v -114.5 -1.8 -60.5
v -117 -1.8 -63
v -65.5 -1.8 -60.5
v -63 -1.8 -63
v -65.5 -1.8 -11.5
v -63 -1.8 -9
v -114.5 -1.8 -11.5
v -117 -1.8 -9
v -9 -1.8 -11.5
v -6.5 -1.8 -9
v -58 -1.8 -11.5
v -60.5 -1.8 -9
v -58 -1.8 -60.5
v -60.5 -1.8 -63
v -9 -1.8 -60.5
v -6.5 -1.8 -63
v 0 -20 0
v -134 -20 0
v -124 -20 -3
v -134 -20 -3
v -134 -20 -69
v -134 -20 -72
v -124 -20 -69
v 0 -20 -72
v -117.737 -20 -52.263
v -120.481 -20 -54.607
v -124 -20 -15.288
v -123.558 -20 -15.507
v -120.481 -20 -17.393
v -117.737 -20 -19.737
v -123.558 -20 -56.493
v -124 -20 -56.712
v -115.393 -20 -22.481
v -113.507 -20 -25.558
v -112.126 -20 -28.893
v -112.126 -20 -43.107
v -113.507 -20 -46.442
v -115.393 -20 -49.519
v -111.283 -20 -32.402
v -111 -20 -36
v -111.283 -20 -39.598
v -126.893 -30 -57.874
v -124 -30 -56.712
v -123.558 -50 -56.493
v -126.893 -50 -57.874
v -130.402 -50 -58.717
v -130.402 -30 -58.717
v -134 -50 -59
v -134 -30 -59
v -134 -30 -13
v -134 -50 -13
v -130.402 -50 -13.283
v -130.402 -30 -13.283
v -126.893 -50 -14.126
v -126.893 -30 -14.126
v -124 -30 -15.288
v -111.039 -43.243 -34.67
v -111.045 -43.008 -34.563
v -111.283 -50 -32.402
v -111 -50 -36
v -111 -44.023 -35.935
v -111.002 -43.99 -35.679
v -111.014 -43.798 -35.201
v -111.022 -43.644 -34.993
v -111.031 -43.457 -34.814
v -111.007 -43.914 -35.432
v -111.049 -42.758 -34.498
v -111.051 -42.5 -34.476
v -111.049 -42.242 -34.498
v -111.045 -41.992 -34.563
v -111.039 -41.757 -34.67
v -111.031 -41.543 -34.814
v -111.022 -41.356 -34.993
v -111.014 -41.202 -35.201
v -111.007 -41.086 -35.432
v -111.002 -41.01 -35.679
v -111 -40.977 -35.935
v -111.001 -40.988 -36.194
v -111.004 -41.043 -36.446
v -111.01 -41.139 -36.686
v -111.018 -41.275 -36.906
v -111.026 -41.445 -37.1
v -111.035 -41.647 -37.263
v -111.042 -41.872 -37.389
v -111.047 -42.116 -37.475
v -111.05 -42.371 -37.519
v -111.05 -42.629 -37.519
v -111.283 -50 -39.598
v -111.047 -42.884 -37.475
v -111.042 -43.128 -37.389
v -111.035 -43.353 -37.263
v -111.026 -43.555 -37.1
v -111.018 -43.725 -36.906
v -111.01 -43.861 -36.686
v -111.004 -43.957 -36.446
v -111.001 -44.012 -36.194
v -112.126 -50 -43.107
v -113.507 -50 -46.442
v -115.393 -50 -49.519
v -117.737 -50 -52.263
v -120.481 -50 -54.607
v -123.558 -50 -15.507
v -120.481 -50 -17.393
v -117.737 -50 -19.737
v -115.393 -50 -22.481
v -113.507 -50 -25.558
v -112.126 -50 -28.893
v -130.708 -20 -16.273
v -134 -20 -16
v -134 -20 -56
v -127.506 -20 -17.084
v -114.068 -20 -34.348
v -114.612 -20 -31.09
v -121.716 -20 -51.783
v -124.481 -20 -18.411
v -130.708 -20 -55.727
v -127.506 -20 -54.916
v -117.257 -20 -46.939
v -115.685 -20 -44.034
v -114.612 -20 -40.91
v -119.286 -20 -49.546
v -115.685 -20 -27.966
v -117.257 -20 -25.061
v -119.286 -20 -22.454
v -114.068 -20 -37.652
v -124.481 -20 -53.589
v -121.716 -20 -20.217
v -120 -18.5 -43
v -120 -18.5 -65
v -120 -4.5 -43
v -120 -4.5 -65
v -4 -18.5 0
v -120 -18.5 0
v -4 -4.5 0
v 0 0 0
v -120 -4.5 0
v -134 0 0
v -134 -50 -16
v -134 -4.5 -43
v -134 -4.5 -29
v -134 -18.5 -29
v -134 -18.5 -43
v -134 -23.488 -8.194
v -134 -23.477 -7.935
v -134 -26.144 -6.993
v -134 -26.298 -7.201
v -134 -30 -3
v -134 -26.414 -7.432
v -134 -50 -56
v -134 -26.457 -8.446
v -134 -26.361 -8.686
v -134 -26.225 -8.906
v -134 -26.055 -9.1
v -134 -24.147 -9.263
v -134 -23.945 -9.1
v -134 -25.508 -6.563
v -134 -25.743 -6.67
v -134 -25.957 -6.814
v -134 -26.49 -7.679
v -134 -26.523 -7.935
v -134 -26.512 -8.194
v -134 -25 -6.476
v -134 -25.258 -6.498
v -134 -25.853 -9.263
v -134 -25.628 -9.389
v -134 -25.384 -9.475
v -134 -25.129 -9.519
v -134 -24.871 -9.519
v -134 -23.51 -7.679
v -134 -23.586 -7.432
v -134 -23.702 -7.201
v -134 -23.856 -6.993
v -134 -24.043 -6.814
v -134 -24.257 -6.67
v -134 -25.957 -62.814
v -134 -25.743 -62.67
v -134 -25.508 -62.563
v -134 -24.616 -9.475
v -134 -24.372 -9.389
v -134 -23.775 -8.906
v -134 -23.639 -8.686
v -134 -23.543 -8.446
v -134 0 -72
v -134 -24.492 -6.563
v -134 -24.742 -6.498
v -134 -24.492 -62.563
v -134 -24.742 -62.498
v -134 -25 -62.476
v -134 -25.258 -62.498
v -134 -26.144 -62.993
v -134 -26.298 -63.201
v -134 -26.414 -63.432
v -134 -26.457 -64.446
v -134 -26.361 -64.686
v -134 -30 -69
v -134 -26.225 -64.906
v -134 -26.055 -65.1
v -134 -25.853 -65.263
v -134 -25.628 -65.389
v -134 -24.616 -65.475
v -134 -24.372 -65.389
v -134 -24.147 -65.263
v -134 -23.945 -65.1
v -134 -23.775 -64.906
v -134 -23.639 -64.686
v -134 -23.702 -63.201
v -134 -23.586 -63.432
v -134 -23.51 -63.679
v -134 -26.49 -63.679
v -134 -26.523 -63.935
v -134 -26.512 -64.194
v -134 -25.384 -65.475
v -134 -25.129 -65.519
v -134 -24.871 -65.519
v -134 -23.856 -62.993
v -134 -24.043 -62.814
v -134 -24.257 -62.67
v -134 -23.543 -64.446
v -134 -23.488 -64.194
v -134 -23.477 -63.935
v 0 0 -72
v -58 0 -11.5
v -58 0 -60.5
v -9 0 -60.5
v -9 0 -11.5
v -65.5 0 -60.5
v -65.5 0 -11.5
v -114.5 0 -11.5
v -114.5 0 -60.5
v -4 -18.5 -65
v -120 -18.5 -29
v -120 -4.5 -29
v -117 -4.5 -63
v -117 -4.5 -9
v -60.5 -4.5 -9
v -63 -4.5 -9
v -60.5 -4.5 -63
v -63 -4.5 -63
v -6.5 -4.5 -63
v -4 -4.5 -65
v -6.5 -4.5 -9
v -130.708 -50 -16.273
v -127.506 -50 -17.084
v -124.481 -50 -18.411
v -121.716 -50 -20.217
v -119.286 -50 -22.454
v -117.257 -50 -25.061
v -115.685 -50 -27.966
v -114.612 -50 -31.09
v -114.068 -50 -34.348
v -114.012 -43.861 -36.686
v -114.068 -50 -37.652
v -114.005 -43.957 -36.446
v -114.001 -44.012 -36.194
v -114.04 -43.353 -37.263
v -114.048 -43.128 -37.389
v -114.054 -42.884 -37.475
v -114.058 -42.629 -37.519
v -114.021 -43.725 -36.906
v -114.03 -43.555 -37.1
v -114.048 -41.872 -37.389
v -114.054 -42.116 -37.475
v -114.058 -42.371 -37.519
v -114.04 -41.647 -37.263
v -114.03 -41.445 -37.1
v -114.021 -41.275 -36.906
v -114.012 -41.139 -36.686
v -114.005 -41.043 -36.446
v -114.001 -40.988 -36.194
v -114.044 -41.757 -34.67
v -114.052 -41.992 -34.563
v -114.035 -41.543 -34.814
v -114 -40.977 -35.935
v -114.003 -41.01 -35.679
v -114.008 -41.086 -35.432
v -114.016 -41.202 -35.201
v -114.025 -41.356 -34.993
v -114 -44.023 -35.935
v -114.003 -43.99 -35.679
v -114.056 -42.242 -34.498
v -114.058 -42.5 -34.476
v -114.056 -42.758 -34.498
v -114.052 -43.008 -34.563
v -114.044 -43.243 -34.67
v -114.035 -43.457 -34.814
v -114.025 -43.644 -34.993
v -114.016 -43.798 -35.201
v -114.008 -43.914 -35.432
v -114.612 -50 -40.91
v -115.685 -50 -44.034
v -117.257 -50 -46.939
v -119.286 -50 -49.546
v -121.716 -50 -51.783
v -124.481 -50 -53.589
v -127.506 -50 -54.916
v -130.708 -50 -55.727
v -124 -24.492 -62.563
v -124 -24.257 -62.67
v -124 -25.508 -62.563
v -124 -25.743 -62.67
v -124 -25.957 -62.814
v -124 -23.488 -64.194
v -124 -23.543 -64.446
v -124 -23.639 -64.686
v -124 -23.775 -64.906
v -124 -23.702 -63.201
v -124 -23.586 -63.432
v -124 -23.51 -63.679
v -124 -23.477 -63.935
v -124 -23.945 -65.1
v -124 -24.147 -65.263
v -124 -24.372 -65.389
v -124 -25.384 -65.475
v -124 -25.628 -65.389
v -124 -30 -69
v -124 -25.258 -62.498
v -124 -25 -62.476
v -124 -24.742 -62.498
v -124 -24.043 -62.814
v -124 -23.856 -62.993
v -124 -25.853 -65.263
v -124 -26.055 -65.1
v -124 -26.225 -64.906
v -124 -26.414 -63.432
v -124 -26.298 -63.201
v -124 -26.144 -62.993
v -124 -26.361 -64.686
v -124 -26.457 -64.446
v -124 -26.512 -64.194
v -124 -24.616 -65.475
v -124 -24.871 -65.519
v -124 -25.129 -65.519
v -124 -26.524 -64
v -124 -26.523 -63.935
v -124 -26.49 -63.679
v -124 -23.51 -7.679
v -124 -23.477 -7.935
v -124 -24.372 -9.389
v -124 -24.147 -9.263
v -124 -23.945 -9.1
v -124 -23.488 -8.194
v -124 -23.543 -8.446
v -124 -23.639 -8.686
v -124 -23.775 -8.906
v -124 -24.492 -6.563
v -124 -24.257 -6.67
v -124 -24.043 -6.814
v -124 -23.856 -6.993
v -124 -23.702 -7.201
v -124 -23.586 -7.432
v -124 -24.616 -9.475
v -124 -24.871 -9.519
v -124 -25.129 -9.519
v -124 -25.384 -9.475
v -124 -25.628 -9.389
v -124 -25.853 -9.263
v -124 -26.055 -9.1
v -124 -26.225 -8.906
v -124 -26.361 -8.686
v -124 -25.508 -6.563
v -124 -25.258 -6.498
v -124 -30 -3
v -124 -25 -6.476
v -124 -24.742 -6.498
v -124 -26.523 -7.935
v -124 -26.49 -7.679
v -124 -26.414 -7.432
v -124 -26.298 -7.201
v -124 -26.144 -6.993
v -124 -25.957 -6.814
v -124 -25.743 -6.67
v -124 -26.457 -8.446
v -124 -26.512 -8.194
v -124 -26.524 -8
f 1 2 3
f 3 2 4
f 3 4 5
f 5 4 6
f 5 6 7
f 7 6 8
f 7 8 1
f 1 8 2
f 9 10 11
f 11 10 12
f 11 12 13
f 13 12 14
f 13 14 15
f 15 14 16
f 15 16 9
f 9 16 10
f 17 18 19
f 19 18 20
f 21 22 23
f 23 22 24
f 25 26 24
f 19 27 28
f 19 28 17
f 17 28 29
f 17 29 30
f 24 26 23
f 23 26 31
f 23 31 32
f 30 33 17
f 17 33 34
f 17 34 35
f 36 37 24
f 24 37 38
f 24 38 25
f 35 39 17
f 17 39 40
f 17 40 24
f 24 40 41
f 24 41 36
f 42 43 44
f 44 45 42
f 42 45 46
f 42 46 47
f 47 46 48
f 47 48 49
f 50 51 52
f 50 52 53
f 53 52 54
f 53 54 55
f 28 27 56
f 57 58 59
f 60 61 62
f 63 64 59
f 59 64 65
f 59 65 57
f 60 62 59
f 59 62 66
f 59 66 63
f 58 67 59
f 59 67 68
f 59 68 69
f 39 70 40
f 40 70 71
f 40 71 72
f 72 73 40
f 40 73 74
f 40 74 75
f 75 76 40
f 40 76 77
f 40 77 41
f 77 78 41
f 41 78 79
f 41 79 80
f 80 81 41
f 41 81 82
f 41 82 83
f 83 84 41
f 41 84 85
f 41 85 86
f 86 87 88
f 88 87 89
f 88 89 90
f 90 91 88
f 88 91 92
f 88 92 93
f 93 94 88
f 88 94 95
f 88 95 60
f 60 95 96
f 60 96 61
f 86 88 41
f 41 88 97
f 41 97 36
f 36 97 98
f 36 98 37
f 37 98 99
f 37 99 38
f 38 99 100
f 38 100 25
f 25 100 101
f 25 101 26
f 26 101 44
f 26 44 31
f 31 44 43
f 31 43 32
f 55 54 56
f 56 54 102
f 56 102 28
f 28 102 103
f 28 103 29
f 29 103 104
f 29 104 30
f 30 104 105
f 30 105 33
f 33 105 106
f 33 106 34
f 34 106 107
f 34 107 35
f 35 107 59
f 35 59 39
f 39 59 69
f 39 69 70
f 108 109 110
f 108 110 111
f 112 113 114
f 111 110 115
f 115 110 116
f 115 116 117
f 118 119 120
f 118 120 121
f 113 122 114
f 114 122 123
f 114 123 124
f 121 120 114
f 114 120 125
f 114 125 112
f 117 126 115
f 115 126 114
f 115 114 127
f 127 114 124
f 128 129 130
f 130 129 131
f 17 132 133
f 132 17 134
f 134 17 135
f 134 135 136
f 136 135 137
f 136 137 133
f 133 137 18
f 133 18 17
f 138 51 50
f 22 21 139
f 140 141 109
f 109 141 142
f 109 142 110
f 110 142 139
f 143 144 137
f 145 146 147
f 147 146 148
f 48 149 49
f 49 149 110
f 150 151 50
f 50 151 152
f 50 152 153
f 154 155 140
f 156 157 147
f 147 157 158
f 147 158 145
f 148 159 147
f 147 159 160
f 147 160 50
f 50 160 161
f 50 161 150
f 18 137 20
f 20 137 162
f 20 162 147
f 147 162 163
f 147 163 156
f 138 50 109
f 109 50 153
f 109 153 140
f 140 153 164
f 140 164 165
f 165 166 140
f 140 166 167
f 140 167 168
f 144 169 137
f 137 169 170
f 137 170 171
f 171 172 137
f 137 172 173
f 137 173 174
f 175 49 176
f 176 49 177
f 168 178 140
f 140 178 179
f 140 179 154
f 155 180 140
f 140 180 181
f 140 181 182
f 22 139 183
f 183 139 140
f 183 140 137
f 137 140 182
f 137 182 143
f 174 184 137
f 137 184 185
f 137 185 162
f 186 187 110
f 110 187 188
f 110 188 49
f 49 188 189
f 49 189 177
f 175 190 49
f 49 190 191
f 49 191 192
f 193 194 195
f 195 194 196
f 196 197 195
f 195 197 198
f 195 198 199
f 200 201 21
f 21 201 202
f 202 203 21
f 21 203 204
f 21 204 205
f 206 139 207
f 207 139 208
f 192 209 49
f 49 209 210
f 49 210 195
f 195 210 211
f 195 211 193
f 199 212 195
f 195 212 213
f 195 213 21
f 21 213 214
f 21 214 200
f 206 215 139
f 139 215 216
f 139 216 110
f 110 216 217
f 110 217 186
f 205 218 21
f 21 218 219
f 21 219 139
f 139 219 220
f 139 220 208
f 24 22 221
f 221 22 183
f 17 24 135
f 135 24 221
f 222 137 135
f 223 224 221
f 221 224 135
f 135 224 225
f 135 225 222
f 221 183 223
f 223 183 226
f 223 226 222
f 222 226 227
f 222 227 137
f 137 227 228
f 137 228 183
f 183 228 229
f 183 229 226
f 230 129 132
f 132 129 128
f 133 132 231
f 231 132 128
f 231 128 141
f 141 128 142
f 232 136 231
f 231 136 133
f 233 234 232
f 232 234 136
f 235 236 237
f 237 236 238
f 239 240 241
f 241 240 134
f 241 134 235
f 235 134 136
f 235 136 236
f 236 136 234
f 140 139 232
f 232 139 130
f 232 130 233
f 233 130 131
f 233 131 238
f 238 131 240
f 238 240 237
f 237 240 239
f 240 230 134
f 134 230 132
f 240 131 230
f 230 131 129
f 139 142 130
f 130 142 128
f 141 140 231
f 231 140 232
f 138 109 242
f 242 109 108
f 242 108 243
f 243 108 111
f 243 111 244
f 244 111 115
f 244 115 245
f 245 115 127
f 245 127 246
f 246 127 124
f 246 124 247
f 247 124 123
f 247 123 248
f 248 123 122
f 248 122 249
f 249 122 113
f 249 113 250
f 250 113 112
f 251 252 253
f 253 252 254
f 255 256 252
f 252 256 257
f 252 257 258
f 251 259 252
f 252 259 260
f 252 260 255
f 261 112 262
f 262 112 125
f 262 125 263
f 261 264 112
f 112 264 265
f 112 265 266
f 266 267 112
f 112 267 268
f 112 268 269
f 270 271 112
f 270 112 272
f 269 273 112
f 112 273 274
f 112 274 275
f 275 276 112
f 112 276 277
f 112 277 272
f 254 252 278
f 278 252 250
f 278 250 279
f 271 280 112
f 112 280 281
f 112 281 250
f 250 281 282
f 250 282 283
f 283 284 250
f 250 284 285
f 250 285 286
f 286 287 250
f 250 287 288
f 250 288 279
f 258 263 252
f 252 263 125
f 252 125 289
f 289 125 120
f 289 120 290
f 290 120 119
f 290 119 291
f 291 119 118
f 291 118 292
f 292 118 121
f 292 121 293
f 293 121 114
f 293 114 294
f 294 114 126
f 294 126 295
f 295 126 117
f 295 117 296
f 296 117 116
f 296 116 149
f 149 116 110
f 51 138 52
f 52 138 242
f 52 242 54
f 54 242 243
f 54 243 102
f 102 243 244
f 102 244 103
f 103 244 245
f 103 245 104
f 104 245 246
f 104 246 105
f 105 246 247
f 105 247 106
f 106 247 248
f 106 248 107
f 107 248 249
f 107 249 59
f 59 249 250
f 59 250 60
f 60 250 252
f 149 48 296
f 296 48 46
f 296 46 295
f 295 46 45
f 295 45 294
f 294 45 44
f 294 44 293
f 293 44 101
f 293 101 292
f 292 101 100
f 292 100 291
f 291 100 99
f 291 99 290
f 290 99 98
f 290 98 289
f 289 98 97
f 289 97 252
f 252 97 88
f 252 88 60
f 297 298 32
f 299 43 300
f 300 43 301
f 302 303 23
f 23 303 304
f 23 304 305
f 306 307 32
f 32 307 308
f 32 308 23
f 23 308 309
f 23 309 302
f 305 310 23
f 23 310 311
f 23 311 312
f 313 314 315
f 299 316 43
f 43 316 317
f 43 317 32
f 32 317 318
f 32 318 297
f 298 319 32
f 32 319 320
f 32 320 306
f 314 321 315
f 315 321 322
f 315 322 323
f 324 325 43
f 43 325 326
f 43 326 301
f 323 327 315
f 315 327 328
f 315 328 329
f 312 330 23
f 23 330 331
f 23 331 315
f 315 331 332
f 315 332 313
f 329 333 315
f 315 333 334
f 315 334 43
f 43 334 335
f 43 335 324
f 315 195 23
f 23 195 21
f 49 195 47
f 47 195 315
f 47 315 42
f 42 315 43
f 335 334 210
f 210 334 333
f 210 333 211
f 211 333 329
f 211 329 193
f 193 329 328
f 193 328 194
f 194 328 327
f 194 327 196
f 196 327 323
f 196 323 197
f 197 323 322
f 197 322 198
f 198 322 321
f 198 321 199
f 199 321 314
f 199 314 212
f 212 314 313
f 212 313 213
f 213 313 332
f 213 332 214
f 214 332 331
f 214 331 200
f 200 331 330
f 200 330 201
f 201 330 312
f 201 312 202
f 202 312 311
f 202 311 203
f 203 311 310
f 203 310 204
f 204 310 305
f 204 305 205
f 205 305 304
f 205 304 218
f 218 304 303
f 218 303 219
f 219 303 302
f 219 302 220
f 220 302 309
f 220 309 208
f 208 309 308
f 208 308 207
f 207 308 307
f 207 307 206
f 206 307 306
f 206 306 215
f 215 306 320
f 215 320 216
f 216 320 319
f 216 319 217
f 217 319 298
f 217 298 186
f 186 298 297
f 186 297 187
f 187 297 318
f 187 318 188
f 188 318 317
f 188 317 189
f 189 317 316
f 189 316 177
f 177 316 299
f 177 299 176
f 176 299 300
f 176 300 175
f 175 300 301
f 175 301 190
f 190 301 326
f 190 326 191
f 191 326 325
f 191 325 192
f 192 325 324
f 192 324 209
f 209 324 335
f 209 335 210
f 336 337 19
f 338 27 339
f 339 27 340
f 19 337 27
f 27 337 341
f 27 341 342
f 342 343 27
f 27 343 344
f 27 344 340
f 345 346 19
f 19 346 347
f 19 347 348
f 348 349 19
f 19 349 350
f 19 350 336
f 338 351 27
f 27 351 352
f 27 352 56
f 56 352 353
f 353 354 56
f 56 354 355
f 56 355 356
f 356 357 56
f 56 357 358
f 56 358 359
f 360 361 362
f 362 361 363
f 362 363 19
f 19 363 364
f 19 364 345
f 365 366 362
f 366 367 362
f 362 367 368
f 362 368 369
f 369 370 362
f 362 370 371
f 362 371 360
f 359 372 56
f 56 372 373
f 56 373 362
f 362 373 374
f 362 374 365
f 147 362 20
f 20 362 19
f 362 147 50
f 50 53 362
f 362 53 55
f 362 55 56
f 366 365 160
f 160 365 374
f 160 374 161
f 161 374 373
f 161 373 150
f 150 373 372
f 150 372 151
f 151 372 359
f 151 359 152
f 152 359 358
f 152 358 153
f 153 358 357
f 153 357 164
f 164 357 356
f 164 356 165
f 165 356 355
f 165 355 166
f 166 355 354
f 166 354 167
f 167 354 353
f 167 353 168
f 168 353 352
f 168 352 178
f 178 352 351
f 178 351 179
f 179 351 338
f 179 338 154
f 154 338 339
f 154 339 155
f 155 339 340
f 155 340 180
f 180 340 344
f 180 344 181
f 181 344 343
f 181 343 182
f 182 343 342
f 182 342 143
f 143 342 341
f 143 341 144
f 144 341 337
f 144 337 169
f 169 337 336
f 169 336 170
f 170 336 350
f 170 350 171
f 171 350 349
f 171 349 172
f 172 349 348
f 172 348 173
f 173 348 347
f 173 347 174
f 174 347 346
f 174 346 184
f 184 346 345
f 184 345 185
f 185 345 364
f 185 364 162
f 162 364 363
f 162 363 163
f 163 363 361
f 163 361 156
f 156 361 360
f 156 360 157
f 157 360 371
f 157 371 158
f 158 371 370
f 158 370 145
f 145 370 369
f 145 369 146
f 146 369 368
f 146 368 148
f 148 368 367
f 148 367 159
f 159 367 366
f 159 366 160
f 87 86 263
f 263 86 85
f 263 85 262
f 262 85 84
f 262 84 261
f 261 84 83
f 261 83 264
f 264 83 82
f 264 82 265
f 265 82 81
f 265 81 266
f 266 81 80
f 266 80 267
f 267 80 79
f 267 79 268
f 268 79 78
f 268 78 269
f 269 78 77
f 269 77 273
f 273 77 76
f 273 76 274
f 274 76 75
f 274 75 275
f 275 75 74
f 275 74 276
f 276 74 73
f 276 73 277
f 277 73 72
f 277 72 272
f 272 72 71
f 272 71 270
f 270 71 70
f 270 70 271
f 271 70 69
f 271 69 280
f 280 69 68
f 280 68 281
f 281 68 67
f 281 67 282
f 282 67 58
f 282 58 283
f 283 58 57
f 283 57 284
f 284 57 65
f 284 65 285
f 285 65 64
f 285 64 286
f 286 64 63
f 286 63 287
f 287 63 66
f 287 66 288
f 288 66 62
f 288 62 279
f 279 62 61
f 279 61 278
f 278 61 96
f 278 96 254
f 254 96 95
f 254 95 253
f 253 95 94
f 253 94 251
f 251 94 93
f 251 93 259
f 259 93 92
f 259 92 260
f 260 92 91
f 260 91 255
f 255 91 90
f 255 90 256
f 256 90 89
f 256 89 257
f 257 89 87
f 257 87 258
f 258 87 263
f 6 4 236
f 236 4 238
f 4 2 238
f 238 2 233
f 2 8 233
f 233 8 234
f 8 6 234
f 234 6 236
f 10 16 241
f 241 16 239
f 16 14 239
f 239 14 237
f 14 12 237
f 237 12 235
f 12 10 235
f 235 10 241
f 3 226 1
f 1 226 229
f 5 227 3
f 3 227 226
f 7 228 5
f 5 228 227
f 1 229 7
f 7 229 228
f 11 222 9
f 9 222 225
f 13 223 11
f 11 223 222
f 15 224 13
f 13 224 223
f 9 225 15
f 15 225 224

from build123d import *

# Parameters (mm, degrees)
MAIN_BODY_DEPTH            = 16
SKETCH8_W                  = 134
SKETCH8_H                  = 4
COVER_DEPTH                = 72
SKETCH20_W                 = 116
SKETCH20_H                 = 14
CRYSTAL_SLOT_DEPTH         = 65
SKETCH9_W                  = 14
SKETCH9_H                  = 14
SIPM_WINDOW_DEPTH          = 14
TUBE_ADAPTER_DEPTH         = 30
RIGHT_SCREW_TERMINAL_DEPTH = 10
RIGHT_SCREW_HOLE_REACH     = 136
SKETCH12_R                 = 1.524
LEFT_SCREW_TERMINAL_DEPTH  = 10
LEFT_SCREW_HOLE_REACH      = 136
SKETCH14_R                 = 1.524
ADAPTER_HOLE_REACH         = 146
SKETCH18_R                 = 1.524
SKETCH21_W                 = 54
SKETCH21_H                 = 54
FILTER_SLOT_DEPTH          = 2.7
SKETCH24_W                 = 49
SKETCH24_H                 = 49
FILTER_WINDOW_DEPTH        = 1.8


with BuildPart() as part:
    # Sketch5 → Main Body (new body)
    with BuildSketch(Plane(origin=(0, 0, 0), x_dir=(1, 0, 0), z_dir=(0, 1, 0))):
        Polygon((-134, 0), (-124, 0), (-1.95326153, 0), (0, 0), (0, 72), (-134, 72), align=None)
    extrude(amount=-MAIN_BODY_DEPTH)

    # Sketch8 → Cover (add)
    with BuildSketch(Plane.XY):
        with Locations((-67, -18)):
            Rectangle(SKETCH8_W, SKETCH8_H)
    extrude(amount=-COVER_DEPTH)

    # Sketch20 → Crystal Slot (cut)
    with BuildSketch(Plane.XY):
        with Locations((-62, -11.5)):
            Rectangle(SKETCH20_W, SKETCH20_H)
    extrude(amount=-CRYSTAL_SLOT_DEPTH, mode=Mode.SUBTRACT)

    # Sketch9 → SiPM Window (cut)
    with BuildSketch(Plane.ZY.offset(134)):
        with Locations((-36, -11.5)):
            Rectangle(SKETCH9_W, SKETCH9_H)
    extrude(amount=-SIPM_WINDOW_DEPTH, mode=Mode.SUBTRACT)

    # Sketch10 → Tube Adapter (add)
    with BuildSketch(Plane.XZ.offset(20)):
        with BuildLine():
            Line((-134, -13), (-134, -16))
            ThreePointArc((-134, -16), (-114, -36), (-134, -56))
            Line((-134, -56), (-134, -59))
            ThreePointArc((-134, -59), (-111, -36), (-134, -13))
        make_face()
    extrude(amount=TUBE_ADAPTER_DEPTH)

    # Sketch11 → Right Screw Terminal (add)
    with BuildSketch(Plane.XZ.offset(20)):
        with BuildLine():
            Line((-134, -59), (-134, -69))
            Line((-134, -69), (-124, -69))
            Line((-124, -69), (-124, -56.712315177))
            ThreePointArc((-124, -56.712315177), (-128.870830919, -58.420785547), (-134, -59))
        make_face()
    extrude(amount=RIGHT_SCREW_TERMINAL_DEPTH)

    # Sketch12 → Right Screw Hole (cut, up to next)
    with BuildSketch(Plane.ZY.offset(134), mode=Mode.PRIVATE) as right_screw_hole_sk1:
        with Locations((-64, -25)):
            Circle(SKETCH12_R)
    right_screw_hole_tool1 = extrude(right_screw_hole_sk1.sketch, amount=-RIGHT_SCREW_HOLE_REACH, mode=Mode.PRIVATE) & part.part
    add(right_screw_hole_tool1.solids().sort_by_distance((-134, -25, -64))[0], mode=Mode.SUBTRACT)

    # Sketch13 → Left Screw Terminal (add)
    with BuildSketch(Plane(origin=(0, -20, 0), x_dir=(-1, 0, 0), z_dir=(0, -1, 0))):
        with BuildLine():
            Line((134, 13), (134, 3))
            Line((134, 3), (124, 3))
            Line((124, 3), (124, 15.287684823))
            ThreePointArc((124, 15.287684823), (128.870830919, 13.579214453), (134, 13))
        make_face()
    extrude(amount=LEFT_SCREW_TERMINAL_DEPTH)

    # Sketch14 → Left Screw Hole (cut, up to next)
    with BuildSketch(Plane.ZY.offset(134), mode=Mode.PRIVATE) as left_screw_hole_sk1:
        with Locations((-8, -25)):
            Circle(SKETCH14_R)
    left_screw_hole_tool1 = extrude(left_screw_hole_sk1.sketch, amount=-LEFT_SCREW_HOLE_REACH, mode=Mode.PRIVATE) & part.part
    add(left_screw_hole_tool1.solids().sort_by_distance((-134, -25, -8))[0], mode=Mode.SUBTRACT)

    # Sketch18 → Adapter Hole (cut, up to next)
    with BuildSketch(Plane.ZY.offset(144), mode=Mode.PRIVATE) as adapter_hole_sk1:
        with Locations((-36, -42.5)):
            Circle(SKETCH18_R)
    adapter_hole_tool1 = extrude(adapter_hole_sk1.sketch, amount=-ADAPTER_HOLE_REACH, mode=Mode.PRIVATE) & part.part
    add(adapter_hole_tool1.solids().sort_by_distance((-144, -42.5, -36))[0], mode=Mode.SUBTRACT)

    # Sketch21 → Filter Slot (cut)
    with BuildSketch(Plane.XZ.offset(4.5)):
        with Locations((-33.5, -36)):
            Rectangle(SKETCH21_W, SKETCH21_H)
        with Locations((-90, -36)):
            Rectangle(SKETCH21_W, SKETCH21_H)
    extrude(amount=-FILTER_SLOT_DEPTH, mode=Mode.SUBTRACT)

    # Sketch24 → Filter Window (cut)
    with BuildSketch(Plane.XZ.offset(1.8)):
        with Locations((-33.5, -36)):
            Rectangle(SKETCH24_W, SKETCH24_H)
        with Locations((-90, -36)):
            Rectangle(SKETCH24_W, SKETCH24_H)
    extrude(amount=-FILTER_WINDOW_DEPTH, mode=Mode.SUBTRACT)


solid = part.part
